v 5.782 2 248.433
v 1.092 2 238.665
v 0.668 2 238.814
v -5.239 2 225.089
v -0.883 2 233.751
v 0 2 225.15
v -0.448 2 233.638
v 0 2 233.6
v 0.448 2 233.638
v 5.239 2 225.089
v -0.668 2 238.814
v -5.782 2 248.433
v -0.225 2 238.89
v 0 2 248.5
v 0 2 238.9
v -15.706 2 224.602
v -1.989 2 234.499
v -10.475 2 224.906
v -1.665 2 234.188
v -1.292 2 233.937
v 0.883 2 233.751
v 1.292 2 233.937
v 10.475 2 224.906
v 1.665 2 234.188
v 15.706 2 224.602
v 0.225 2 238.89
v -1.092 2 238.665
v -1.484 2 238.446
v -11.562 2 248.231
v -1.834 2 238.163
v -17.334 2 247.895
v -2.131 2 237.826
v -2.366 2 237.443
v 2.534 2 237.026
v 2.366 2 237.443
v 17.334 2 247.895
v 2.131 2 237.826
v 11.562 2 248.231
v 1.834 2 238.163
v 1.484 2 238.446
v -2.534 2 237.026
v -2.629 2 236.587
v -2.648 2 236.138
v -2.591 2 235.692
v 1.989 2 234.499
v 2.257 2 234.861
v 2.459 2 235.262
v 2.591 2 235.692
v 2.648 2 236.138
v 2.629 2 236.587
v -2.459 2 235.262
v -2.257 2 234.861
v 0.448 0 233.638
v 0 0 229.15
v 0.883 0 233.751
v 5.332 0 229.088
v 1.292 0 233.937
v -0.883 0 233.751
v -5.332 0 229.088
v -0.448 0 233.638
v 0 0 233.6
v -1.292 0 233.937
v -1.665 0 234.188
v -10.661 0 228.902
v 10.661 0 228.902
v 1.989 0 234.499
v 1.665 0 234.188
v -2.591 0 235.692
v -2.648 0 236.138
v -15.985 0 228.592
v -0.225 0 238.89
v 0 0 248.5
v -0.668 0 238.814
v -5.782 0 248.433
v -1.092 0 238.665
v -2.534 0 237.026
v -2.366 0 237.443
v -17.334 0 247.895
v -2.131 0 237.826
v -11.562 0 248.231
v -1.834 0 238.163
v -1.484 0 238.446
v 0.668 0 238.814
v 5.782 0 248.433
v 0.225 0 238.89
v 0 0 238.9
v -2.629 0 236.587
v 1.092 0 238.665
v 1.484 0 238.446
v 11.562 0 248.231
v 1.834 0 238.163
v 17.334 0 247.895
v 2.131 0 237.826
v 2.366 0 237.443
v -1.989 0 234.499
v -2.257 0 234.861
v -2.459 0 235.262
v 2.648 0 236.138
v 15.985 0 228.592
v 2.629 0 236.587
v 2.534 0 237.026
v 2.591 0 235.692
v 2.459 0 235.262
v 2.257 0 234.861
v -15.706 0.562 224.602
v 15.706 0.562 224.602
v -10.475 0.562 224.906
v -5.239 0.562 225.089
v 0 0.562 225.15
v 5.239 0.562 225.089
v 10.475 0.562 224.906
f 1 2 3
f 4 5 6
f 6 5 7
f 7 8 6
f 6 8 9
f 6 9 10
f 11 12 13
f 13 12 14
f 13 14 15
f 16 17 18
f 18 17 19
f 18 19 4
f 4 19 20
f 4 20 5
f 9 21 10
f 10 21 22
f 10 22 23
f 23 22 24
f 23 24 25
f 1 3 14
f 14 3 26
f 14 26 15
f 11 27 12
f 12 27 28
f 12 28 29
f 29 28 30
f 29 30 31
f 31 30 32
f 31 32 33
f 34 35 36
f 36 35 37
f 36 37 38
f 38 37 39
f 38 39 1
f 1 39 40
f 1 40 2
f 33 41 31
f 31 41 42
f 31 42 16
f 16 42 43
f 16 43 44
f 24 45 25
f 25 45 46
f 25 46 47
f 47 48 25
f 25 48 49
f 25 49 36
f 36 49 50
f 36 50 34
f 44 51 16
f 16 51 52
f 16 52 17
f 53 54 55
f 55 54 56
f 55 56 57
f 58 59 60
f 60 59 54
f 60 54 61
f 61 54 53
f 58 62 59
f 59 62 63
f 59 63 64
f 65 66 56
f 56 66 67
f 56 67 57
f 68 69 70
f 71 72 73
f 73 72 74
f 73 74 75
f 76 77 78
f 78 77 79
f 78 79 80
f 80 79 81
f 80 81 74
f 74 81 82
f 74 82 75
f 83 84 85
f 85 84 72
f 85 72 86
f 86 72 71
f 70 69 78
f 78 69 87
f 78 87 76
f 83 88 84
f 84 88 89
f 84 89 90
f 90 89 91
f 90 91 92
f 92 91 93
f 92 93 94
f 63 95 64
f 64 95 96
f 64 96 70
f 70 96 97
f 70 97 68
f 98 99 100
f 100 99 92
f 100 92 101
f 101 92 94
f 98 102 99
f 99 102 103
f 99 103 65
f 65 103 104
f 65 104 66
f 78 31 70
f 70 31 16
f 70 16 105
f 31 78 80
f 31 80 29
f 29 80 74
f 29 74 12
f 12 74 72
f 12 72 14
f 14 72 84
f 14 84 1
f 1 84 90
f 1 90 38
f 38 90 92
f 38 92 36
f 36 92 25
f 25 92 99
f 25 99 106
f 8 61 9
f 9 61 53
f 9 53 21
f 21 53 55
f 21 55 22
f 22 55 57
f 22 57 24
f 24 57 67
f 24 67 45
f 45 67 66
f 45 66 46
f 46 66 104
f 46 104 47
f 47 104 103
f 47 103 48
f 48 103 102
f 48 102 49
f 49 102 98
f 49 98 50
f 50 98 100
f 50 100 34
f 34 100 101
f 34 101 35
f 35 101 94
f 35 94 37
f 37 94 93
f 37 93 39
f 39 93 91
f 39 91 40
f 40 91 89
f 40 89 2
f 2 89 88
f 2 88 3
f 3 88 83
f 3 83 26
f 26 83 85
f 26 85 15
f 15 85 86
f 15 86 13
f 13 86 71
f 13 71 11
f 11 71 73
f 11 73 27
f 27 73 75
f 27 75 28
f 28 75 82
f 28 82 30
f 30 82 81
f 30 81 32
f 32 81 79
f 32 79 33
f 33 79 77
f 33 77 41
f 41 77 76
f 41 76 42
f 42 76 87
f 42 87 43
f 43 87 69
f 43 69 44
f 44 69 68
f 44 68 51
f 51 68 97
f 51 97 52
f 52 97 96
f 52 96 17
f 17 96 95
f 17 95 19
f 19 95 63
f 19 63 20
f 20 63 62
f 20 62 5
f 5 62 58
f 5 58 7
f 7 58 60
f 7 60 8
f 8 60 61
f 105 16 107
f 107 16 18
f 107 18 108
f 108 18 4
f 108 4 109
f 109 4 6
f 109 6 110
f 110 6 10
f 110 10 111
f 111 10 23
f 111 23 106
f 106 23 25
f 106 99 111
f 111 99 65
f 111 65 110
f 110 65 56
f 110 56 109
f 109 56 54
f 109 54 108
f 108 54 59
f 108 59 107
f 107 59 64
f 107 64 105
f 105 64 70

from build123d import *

# Parameters (mm, degrees)
SKETCH2_R           = 2.650000000000004
BOSS_EXTRUDE1_DEPTH = 2
BOSS_EXTRUDE2_DEPTH = 2
CHAMFER1_SIZE       = 4
CHAMFER1_SIZE2      = 0.5621633388095701


with BuildPart() as part:
    # Sketch2 → Boss-Extrude1 (new body)
    with BuildSketch(Plane(origin=(0, 0, 0), x_dir=(1, 0, 0), z_dir=(0, 1, 0))):
        with BuildLine():
            Line((-15.984695958466673, -228.5918021170437), (-17.33448372541018, -247.89466648957097))
            ThreePointArc((-17.33448372541018, -247.89466648957097), (4.98147e-12, -248.50000000000463), (17.334483725420203, -247.89466648957094))
            Line((17.334483725420203, -247.89466648957094), (15.98469595846676, -228.59180211704373))
            ThreePointArc((15.98469595846676, -228.59180211704373), (4.411e-14, -229.150000000005), (-15.984695958466673, -228.5918021170437))
        make_face()
        with Locations(Location((8.9e-16, -236.24999999999997, 0), (0, 0, 270))):
            Circle(SKETCH2_R, mode=Mode.SUBTRACT)
    extrude(amount=BOSS_EXTRUDE1_DEPTH)

    # Sketch3 → Boss-Extrude2 (add)
    with BuildSketch(Plane(origin=(0, 0, 0), x_dir=(1, 0, 0), z_dir=(0, 1, 0))):
        with BuildLine():
            Line((-15.70567006349017, -224.6015459160044), (-15.984695958466673, -228.5918021170437))
            ThreePointArc((-15.984695958466673, -228.5918021170437), (1.403e-14, -229.15000000000495), (15.98469595846676, -228.59180211704367))
            Line((15.98469595846676, -228.59180211704367), (15.705670063490256, -224.60154591600437))
            ThreePointArc((15.705670063490256, -224.60154591600437), (1.379e-14, -225.15000000000495), (-15.70567006349017, -224.6015459160044))
        make_face()
    extrude(amount=BOSS_EXTRUDE2_DEPTH)

    # Chamfer1
    chamfer1_edges = [part.edges().sort_by_distance(p)[0] for p in [
        (4.53e-14, 0, 225.15000000000498),
    ]]
    chamfer1_side = [part.faces().sort_by_distance(p)[0] for p in [
        (5.01431e-12, 0, 248.07892121738644),
    ]]
    chamfer(chamfer1_edges, length=CHAMFER1_SIZE, length2=CHAMFER1_SIZE2, reference=chamfer1_side[0])


solid = part.part
